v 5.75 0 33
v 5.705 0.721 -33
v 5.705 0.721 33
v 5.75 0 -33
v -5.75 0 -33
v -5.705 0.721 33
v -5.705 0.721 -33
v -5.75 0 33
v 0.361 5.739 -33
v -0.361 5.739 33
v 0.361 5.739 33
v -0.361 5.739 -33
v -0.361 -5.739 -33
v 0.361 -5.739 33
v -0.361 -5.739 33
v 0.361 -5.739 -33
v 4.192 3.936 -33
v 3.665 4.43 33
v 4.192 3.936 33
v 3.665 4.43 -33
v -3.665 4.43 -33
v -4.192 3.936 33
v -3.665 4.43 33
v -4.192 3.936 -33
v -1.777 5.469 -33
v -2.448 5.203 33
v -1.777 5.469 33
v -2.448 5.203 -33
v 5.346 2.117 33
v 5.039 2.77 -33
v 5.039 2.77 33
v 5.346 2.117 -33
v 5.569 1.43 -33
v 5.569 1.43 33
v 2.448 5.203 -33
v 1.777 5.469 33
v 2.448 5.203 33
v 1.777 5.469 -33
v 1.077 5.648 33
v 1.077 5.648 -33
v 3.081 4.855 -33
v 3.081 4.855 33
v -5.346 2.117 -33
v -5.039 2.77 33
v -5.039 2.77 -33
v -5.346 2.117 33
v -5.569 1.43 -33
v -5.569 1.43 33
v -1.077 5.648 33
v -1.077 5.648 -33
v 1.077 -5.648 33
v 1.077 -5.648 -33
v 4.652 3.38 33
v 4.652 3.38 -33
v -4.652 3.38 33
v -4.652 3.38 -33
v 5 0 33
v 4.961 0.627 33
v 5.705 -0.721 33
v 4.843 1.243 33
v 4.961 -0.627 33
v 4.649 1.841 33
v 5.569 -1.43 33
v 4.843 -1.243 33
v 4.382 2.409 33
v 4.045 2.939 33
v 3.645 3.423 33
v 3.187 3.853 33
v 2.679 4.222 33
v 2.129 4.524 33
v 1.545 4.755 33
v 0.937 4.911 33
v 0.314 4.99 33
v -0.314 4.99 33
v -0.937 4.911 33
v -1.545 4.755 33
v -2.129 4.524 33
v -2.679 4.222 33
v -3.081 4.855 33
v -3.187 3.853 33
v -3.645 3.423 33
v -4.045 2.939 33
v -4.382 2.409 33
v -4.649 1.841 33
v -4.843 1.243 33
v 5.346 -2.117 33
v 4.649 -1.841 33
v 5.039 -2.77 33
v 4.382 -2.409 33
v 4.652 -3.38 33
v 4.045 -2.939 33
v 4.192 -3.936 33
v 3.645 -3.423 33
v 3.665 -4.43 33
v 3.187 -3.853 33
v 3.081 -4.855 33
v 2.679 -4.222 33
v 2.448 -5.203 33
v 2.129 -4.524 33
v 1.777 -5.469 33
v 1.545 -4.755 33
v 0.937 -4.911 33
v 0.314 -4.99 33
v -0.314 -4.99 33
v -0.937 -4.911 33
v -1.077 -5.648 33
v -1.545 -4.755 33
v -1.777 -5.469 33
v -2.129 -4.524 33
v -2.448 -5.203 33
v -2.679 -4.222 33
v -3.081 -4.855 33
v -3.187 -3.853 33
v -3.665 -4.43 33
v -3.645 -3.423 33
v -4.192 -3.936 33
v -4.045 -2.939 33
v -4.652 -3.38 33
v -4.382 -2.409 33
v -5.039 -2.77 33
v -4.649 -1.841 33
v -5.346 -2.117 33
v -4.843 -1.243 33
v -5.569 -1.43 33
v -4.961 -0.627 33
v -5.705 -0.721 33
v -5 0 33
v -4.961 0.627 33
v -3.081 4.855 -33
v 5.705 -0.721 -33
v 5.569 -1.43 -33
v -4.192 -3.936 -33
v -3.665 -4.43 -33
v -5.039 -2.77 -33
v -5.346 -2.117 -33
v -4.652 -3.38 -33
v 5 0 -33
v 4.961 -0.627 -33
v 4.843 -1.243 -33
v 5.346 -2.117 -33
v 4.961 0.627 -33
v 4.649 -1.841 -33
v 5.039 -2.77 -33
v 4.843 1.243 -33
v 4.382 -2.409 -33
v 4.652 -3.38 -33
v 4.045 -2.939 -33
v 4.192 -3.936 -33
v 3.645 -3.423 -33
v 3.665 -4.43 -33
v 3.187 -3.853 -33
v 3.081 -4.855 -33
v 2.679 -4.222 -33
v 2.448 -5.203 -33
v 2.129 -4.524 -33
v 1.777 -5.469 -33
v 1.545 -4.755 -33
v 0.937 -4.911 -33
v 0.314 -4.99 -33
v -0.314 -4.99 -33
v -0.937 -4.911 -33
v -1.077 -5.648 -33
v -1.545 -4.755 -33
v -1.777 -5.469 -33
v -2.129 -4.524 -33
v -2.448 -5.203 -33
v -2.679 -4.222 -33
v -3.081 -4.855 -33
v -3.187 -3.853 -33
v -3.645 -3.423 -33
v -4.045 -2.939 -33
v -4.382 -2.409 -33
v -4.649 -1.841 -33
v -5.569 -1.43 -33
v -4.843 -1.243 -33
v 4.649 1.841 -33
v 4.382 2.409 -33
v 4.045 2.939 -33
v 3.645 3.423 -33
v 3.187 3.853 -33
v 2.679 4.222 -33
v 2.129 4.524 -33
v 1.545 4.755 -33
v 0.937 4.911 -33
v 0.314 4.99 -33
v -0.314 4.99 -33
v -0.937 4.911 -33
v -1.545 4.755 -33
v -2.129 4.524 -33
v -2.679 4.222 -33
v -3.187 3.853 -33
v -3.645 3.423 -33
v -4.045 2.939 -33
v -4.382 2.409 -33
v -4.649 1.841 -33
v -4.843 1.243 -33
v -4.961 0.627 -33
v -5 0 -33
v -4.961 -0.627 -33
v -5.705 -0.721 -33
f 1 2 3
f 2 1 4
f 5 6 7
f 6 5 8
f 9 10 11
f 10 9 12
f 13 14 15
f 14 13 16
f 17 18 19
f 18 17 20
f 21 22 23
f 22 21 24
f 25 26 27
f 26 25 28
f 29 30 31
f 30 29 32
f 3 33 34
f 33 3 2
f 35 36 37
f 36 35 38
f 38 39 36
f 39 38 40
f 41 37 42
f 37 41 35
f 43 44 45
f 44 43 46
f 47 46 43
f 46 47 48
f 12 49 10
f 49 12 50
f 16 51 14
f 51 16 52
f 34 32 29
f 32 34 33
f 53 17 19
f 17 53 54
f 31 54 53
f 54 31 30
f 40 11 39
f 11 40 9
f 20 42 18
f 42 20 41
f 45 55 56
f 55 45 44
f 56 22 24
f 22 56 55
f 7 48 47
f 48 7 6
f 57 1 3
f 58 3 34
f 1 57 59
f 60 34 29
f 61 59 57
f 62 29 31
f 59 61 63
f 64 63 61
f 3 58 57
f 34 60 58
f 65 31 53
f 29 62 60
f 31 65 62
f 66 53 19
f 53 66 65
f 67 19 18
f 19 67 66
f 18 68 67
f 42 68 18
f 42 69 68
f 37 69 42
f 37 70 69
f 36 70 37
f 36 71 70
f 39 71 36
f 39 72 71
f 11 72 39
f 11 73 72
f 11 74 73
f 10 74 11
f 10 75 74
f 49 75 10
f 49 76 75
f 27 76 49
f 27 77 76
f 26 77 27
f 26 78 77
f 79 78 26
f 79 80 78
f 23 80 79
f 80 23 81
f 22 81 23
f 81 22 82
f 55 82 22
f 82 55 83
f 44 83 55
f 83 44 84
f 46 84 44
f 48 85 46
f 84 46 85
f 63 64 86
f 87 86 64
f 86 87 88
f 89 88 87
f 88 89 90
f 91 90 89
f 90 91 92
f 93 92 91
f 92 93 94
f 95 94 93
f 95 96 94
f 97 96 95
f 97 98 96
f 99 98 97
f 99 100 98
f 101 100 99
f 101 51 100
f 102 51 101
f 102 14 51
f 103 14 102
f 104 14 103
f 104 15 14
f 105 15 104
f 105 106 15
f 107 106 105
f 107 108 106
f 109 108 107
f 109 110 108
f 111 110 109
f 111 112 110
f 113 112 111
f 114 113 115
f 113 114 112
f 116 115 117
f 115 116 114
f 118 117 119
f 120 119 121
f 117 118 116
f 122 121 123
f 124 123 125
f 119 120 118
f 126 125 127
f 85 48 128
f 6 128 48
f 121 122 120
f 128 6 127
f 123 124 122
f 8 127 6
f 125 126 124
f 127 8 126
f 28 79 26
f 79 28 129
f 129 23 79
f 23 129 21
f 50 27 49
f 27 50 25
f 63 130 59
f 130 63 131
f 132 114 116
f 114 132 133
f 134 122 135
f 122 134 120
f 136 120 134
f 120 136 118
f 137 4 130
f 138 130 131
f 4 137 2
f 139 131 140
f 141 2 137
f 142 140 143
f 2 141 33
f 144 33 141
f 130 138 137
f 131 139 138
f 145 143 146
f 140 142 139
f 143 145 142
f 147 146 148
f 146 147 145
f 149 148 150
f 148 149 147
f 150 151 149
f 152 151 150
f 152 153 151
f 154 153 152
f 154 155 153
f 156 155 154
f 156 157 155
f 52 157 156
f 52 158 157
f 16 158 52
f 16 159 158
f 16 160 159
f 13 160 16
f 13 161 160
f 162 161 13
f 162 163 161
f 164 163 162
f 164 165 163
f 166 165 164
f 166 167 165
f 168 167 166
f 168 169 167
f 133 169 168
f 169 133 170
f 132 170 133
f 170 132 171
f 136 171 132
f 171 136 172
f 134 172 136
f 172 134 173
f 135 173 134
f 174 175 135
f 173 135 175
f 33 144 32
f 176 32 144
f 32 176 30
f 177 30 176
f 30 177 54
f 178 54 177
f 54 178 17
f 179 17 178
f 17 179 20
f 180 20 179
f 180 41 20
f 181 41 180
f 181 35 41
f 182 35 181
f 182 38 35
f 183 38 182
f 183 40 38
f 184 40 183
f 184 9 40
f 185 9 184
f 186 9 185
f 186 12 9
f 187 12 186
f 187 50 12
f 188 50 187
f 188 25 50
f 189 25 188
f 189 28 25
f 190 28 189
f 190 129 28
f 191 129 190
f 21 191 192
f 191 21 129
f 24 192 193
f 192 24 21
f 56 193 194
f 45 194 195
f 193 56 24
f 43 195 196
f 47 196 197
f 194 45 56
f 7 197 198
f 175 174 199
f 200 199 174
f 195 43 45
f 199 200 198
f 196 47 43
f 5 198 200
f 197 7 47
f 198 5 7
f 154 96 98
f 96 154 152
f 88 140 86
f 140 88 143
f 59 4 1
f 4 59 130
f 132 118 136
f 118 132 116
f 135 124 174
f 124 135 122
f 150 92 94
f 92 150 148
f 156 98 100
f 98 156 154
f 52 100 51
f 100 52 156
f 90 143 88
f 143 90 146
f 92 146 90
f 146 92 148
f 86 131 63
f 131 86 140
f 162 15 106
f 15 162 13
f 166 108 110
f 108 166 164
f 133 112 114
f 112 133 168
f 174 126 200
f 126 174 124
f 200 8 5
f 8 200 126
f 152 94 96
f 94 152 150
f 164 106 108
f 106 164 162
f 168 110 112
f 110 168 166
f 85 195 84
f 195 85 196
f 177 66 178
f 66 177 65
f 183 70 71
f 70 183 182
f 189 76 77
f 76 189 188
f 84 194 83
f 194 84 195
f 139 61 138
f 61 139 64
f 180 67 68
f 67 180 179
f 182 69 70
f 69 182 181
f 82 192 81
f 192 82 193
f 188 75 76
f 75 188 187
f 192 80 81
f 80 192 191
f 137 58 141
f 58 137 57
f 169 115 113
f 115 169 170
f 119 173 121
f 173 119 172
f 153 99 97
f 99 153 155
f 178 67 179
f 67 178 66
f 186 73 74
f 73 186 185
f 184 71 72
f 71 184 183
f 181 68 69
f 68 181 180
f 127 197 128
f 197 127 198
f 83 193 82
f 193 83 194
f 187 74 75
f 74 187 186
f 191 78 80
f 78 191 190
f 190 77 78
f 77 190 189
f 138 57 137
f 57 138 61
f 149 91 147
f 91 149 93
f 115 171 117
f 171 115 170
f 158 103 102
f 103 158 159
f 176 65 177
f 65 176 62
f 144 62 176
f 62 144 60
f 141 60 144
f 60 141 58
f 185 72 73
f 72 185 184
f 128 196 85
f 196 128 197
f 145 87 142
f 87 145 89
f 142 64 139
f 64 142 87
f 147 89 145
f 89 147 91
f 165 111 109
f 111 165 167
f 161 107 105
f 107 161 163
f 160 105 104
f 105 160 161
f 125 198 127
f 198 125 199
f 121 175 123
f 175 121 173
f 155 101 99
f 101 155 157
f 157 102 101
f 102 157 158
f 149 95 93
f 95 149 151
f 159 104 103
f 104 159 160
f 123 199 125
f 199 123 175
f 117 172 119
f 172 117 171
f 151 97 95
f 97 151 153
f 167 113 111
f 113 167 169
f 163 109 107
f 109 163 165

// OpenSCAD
$fn = 50;


difference() {
	union() {
		translate(v = [0, 0, -33.0000000000]) {
			cylinder(h = 66, r = 5.7500000000);
		}
	}
	union() {
		translate(v = [0, 0, -100.0000000000]) {
			cylinder(h = 200, r = 5.0000000000);
		}
	}
}
